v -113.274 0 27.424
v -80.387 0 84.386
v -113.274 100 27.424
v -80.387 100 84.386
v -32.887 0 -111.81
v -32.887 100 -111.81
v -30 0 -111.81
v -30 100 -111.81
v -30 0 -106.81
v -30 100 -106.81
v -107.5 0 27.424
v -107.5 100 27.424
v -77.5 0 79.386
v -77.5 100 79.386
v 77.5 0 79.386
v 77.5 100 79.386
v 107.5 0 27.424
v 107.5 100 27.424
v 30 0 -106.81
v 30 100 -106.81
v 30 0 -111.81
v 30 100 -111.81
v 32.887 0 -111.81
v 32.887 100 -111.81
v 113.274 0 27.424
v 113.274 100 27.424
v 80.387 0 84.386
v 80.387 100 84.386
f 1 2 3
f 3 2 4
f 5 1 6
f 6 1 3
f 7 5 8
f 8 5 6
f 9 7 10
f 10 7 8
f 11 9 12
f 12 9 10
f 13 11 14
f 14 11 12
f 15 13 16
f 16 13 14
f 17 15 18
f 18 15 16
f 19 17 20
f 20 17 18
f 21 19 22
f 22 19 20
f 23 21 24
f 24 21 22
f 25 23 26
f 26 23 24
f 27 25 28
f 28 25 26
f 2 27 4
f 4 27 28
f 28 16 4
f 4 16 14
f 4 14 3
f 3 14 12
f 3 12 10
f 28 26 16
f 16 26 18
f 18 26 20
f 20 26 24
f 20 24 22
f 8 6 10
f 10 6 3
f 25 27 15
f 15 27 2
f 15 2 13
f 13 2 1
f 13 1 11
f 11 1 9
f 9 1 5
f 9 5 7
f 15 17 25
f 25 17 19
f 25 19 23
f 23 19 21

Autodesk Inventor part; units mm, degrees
ref_plane "YZ Plane" through (0, 0, 0) normal (1, 0, 0) x (0, 1, 0)
ref_plane "XZ Plane" through (0, 0, 0) normal (0, 1, 0) x (-1, 0, 0)
ref_plane "XY Plane" through (0, 0, 0) normal (0, 0, 1) x (1, 0, 0)
sketch "スケッチ1" plane through (0, 0, 0) normal (0, 1, 0) x (-1, 0, 0)
  line L0 (137.5, 79.3857) -> (-137.5, 79.3857)
  line L1 (-137.5, 79.3857) -> (0, -158.7713)
  line L2 (0, -158.7713) -> (137.5, 79.3857)
  line L3 (137.5, 79.3857) -> (-68.75, -39.6928) construction
  line L4 (77.5, 79.3857) -> (107.5, 27.4241)
  line L5 (-107.5, 27.4241) -> (-77.5, 79.3857)
  line L6 (30, -106.8098) -> (-30, -106.8098)
  line L7 (80.3868, 84.3857) -> (0, 84.3857)
  line L8 (80.3868, 84.3857) -> (96.8301, 55.9049)
  line L9 (0, 0) -> (0, 84.3857) construction
  line L10 (-80.3868, 84.3857) -> (0, 84.3857)
  line L11 (-80.3868, 84.3857) -> (-96.8301, 55.9049)
  line L12 (-113.2735, 27.4241) -> (-96.8301, 55.9049)
  line L13 (-113.2735, 27.4241) -> (-73.0801, -42.1928)
  line L14 (-32.8868, -111.8098) -> (-73.0801, -42.1928)
  line L15 (-32.8868, -111.8098) -> (0, -111.8098)
  line L16 (32.8868, -111.8098) -> (0, -111.8098)
  line L17 (32.8868, -111.8098) -> (73.0801, -42.1928)
  line L18 (113.2735, 27.4241) -> (73.0801, -42.1928)
  line L19 (113.2735, 27.4241) -> (96.8301, 55.9049)
  line L20 (30, -111.8098) -> (30, -106.8098)
  line L21 (-30, -111.8098) -> (-30, -106.8098)
  line L22 (-30, -106.8098) -> (30, -106.8098)
  point P0 (-30, -106.8098)
  point P1 (-107.5, 27.4241)
  point P2 (-77.5, 79.3857)
  point P3 (30, -106.8098)
  dimension "d0" = 275
  dimension "d1" = 60
  dimension "d4" = 360
  dimension "d6" = 5
  dimension "d7" = 5
  dimension "d10" = 360
extrude "押し出し1" add sketch "スケッチ1" along normal blind 100 contours L0 L11 L10 L7 L8 | L0 L8 L19 L2 L4 | L5 L1 L12 L11 L0 | L2 L19 L18 L17 L16 L20 | L1 L21 L15 L14 L13 L12
properties part number "base_cover"
